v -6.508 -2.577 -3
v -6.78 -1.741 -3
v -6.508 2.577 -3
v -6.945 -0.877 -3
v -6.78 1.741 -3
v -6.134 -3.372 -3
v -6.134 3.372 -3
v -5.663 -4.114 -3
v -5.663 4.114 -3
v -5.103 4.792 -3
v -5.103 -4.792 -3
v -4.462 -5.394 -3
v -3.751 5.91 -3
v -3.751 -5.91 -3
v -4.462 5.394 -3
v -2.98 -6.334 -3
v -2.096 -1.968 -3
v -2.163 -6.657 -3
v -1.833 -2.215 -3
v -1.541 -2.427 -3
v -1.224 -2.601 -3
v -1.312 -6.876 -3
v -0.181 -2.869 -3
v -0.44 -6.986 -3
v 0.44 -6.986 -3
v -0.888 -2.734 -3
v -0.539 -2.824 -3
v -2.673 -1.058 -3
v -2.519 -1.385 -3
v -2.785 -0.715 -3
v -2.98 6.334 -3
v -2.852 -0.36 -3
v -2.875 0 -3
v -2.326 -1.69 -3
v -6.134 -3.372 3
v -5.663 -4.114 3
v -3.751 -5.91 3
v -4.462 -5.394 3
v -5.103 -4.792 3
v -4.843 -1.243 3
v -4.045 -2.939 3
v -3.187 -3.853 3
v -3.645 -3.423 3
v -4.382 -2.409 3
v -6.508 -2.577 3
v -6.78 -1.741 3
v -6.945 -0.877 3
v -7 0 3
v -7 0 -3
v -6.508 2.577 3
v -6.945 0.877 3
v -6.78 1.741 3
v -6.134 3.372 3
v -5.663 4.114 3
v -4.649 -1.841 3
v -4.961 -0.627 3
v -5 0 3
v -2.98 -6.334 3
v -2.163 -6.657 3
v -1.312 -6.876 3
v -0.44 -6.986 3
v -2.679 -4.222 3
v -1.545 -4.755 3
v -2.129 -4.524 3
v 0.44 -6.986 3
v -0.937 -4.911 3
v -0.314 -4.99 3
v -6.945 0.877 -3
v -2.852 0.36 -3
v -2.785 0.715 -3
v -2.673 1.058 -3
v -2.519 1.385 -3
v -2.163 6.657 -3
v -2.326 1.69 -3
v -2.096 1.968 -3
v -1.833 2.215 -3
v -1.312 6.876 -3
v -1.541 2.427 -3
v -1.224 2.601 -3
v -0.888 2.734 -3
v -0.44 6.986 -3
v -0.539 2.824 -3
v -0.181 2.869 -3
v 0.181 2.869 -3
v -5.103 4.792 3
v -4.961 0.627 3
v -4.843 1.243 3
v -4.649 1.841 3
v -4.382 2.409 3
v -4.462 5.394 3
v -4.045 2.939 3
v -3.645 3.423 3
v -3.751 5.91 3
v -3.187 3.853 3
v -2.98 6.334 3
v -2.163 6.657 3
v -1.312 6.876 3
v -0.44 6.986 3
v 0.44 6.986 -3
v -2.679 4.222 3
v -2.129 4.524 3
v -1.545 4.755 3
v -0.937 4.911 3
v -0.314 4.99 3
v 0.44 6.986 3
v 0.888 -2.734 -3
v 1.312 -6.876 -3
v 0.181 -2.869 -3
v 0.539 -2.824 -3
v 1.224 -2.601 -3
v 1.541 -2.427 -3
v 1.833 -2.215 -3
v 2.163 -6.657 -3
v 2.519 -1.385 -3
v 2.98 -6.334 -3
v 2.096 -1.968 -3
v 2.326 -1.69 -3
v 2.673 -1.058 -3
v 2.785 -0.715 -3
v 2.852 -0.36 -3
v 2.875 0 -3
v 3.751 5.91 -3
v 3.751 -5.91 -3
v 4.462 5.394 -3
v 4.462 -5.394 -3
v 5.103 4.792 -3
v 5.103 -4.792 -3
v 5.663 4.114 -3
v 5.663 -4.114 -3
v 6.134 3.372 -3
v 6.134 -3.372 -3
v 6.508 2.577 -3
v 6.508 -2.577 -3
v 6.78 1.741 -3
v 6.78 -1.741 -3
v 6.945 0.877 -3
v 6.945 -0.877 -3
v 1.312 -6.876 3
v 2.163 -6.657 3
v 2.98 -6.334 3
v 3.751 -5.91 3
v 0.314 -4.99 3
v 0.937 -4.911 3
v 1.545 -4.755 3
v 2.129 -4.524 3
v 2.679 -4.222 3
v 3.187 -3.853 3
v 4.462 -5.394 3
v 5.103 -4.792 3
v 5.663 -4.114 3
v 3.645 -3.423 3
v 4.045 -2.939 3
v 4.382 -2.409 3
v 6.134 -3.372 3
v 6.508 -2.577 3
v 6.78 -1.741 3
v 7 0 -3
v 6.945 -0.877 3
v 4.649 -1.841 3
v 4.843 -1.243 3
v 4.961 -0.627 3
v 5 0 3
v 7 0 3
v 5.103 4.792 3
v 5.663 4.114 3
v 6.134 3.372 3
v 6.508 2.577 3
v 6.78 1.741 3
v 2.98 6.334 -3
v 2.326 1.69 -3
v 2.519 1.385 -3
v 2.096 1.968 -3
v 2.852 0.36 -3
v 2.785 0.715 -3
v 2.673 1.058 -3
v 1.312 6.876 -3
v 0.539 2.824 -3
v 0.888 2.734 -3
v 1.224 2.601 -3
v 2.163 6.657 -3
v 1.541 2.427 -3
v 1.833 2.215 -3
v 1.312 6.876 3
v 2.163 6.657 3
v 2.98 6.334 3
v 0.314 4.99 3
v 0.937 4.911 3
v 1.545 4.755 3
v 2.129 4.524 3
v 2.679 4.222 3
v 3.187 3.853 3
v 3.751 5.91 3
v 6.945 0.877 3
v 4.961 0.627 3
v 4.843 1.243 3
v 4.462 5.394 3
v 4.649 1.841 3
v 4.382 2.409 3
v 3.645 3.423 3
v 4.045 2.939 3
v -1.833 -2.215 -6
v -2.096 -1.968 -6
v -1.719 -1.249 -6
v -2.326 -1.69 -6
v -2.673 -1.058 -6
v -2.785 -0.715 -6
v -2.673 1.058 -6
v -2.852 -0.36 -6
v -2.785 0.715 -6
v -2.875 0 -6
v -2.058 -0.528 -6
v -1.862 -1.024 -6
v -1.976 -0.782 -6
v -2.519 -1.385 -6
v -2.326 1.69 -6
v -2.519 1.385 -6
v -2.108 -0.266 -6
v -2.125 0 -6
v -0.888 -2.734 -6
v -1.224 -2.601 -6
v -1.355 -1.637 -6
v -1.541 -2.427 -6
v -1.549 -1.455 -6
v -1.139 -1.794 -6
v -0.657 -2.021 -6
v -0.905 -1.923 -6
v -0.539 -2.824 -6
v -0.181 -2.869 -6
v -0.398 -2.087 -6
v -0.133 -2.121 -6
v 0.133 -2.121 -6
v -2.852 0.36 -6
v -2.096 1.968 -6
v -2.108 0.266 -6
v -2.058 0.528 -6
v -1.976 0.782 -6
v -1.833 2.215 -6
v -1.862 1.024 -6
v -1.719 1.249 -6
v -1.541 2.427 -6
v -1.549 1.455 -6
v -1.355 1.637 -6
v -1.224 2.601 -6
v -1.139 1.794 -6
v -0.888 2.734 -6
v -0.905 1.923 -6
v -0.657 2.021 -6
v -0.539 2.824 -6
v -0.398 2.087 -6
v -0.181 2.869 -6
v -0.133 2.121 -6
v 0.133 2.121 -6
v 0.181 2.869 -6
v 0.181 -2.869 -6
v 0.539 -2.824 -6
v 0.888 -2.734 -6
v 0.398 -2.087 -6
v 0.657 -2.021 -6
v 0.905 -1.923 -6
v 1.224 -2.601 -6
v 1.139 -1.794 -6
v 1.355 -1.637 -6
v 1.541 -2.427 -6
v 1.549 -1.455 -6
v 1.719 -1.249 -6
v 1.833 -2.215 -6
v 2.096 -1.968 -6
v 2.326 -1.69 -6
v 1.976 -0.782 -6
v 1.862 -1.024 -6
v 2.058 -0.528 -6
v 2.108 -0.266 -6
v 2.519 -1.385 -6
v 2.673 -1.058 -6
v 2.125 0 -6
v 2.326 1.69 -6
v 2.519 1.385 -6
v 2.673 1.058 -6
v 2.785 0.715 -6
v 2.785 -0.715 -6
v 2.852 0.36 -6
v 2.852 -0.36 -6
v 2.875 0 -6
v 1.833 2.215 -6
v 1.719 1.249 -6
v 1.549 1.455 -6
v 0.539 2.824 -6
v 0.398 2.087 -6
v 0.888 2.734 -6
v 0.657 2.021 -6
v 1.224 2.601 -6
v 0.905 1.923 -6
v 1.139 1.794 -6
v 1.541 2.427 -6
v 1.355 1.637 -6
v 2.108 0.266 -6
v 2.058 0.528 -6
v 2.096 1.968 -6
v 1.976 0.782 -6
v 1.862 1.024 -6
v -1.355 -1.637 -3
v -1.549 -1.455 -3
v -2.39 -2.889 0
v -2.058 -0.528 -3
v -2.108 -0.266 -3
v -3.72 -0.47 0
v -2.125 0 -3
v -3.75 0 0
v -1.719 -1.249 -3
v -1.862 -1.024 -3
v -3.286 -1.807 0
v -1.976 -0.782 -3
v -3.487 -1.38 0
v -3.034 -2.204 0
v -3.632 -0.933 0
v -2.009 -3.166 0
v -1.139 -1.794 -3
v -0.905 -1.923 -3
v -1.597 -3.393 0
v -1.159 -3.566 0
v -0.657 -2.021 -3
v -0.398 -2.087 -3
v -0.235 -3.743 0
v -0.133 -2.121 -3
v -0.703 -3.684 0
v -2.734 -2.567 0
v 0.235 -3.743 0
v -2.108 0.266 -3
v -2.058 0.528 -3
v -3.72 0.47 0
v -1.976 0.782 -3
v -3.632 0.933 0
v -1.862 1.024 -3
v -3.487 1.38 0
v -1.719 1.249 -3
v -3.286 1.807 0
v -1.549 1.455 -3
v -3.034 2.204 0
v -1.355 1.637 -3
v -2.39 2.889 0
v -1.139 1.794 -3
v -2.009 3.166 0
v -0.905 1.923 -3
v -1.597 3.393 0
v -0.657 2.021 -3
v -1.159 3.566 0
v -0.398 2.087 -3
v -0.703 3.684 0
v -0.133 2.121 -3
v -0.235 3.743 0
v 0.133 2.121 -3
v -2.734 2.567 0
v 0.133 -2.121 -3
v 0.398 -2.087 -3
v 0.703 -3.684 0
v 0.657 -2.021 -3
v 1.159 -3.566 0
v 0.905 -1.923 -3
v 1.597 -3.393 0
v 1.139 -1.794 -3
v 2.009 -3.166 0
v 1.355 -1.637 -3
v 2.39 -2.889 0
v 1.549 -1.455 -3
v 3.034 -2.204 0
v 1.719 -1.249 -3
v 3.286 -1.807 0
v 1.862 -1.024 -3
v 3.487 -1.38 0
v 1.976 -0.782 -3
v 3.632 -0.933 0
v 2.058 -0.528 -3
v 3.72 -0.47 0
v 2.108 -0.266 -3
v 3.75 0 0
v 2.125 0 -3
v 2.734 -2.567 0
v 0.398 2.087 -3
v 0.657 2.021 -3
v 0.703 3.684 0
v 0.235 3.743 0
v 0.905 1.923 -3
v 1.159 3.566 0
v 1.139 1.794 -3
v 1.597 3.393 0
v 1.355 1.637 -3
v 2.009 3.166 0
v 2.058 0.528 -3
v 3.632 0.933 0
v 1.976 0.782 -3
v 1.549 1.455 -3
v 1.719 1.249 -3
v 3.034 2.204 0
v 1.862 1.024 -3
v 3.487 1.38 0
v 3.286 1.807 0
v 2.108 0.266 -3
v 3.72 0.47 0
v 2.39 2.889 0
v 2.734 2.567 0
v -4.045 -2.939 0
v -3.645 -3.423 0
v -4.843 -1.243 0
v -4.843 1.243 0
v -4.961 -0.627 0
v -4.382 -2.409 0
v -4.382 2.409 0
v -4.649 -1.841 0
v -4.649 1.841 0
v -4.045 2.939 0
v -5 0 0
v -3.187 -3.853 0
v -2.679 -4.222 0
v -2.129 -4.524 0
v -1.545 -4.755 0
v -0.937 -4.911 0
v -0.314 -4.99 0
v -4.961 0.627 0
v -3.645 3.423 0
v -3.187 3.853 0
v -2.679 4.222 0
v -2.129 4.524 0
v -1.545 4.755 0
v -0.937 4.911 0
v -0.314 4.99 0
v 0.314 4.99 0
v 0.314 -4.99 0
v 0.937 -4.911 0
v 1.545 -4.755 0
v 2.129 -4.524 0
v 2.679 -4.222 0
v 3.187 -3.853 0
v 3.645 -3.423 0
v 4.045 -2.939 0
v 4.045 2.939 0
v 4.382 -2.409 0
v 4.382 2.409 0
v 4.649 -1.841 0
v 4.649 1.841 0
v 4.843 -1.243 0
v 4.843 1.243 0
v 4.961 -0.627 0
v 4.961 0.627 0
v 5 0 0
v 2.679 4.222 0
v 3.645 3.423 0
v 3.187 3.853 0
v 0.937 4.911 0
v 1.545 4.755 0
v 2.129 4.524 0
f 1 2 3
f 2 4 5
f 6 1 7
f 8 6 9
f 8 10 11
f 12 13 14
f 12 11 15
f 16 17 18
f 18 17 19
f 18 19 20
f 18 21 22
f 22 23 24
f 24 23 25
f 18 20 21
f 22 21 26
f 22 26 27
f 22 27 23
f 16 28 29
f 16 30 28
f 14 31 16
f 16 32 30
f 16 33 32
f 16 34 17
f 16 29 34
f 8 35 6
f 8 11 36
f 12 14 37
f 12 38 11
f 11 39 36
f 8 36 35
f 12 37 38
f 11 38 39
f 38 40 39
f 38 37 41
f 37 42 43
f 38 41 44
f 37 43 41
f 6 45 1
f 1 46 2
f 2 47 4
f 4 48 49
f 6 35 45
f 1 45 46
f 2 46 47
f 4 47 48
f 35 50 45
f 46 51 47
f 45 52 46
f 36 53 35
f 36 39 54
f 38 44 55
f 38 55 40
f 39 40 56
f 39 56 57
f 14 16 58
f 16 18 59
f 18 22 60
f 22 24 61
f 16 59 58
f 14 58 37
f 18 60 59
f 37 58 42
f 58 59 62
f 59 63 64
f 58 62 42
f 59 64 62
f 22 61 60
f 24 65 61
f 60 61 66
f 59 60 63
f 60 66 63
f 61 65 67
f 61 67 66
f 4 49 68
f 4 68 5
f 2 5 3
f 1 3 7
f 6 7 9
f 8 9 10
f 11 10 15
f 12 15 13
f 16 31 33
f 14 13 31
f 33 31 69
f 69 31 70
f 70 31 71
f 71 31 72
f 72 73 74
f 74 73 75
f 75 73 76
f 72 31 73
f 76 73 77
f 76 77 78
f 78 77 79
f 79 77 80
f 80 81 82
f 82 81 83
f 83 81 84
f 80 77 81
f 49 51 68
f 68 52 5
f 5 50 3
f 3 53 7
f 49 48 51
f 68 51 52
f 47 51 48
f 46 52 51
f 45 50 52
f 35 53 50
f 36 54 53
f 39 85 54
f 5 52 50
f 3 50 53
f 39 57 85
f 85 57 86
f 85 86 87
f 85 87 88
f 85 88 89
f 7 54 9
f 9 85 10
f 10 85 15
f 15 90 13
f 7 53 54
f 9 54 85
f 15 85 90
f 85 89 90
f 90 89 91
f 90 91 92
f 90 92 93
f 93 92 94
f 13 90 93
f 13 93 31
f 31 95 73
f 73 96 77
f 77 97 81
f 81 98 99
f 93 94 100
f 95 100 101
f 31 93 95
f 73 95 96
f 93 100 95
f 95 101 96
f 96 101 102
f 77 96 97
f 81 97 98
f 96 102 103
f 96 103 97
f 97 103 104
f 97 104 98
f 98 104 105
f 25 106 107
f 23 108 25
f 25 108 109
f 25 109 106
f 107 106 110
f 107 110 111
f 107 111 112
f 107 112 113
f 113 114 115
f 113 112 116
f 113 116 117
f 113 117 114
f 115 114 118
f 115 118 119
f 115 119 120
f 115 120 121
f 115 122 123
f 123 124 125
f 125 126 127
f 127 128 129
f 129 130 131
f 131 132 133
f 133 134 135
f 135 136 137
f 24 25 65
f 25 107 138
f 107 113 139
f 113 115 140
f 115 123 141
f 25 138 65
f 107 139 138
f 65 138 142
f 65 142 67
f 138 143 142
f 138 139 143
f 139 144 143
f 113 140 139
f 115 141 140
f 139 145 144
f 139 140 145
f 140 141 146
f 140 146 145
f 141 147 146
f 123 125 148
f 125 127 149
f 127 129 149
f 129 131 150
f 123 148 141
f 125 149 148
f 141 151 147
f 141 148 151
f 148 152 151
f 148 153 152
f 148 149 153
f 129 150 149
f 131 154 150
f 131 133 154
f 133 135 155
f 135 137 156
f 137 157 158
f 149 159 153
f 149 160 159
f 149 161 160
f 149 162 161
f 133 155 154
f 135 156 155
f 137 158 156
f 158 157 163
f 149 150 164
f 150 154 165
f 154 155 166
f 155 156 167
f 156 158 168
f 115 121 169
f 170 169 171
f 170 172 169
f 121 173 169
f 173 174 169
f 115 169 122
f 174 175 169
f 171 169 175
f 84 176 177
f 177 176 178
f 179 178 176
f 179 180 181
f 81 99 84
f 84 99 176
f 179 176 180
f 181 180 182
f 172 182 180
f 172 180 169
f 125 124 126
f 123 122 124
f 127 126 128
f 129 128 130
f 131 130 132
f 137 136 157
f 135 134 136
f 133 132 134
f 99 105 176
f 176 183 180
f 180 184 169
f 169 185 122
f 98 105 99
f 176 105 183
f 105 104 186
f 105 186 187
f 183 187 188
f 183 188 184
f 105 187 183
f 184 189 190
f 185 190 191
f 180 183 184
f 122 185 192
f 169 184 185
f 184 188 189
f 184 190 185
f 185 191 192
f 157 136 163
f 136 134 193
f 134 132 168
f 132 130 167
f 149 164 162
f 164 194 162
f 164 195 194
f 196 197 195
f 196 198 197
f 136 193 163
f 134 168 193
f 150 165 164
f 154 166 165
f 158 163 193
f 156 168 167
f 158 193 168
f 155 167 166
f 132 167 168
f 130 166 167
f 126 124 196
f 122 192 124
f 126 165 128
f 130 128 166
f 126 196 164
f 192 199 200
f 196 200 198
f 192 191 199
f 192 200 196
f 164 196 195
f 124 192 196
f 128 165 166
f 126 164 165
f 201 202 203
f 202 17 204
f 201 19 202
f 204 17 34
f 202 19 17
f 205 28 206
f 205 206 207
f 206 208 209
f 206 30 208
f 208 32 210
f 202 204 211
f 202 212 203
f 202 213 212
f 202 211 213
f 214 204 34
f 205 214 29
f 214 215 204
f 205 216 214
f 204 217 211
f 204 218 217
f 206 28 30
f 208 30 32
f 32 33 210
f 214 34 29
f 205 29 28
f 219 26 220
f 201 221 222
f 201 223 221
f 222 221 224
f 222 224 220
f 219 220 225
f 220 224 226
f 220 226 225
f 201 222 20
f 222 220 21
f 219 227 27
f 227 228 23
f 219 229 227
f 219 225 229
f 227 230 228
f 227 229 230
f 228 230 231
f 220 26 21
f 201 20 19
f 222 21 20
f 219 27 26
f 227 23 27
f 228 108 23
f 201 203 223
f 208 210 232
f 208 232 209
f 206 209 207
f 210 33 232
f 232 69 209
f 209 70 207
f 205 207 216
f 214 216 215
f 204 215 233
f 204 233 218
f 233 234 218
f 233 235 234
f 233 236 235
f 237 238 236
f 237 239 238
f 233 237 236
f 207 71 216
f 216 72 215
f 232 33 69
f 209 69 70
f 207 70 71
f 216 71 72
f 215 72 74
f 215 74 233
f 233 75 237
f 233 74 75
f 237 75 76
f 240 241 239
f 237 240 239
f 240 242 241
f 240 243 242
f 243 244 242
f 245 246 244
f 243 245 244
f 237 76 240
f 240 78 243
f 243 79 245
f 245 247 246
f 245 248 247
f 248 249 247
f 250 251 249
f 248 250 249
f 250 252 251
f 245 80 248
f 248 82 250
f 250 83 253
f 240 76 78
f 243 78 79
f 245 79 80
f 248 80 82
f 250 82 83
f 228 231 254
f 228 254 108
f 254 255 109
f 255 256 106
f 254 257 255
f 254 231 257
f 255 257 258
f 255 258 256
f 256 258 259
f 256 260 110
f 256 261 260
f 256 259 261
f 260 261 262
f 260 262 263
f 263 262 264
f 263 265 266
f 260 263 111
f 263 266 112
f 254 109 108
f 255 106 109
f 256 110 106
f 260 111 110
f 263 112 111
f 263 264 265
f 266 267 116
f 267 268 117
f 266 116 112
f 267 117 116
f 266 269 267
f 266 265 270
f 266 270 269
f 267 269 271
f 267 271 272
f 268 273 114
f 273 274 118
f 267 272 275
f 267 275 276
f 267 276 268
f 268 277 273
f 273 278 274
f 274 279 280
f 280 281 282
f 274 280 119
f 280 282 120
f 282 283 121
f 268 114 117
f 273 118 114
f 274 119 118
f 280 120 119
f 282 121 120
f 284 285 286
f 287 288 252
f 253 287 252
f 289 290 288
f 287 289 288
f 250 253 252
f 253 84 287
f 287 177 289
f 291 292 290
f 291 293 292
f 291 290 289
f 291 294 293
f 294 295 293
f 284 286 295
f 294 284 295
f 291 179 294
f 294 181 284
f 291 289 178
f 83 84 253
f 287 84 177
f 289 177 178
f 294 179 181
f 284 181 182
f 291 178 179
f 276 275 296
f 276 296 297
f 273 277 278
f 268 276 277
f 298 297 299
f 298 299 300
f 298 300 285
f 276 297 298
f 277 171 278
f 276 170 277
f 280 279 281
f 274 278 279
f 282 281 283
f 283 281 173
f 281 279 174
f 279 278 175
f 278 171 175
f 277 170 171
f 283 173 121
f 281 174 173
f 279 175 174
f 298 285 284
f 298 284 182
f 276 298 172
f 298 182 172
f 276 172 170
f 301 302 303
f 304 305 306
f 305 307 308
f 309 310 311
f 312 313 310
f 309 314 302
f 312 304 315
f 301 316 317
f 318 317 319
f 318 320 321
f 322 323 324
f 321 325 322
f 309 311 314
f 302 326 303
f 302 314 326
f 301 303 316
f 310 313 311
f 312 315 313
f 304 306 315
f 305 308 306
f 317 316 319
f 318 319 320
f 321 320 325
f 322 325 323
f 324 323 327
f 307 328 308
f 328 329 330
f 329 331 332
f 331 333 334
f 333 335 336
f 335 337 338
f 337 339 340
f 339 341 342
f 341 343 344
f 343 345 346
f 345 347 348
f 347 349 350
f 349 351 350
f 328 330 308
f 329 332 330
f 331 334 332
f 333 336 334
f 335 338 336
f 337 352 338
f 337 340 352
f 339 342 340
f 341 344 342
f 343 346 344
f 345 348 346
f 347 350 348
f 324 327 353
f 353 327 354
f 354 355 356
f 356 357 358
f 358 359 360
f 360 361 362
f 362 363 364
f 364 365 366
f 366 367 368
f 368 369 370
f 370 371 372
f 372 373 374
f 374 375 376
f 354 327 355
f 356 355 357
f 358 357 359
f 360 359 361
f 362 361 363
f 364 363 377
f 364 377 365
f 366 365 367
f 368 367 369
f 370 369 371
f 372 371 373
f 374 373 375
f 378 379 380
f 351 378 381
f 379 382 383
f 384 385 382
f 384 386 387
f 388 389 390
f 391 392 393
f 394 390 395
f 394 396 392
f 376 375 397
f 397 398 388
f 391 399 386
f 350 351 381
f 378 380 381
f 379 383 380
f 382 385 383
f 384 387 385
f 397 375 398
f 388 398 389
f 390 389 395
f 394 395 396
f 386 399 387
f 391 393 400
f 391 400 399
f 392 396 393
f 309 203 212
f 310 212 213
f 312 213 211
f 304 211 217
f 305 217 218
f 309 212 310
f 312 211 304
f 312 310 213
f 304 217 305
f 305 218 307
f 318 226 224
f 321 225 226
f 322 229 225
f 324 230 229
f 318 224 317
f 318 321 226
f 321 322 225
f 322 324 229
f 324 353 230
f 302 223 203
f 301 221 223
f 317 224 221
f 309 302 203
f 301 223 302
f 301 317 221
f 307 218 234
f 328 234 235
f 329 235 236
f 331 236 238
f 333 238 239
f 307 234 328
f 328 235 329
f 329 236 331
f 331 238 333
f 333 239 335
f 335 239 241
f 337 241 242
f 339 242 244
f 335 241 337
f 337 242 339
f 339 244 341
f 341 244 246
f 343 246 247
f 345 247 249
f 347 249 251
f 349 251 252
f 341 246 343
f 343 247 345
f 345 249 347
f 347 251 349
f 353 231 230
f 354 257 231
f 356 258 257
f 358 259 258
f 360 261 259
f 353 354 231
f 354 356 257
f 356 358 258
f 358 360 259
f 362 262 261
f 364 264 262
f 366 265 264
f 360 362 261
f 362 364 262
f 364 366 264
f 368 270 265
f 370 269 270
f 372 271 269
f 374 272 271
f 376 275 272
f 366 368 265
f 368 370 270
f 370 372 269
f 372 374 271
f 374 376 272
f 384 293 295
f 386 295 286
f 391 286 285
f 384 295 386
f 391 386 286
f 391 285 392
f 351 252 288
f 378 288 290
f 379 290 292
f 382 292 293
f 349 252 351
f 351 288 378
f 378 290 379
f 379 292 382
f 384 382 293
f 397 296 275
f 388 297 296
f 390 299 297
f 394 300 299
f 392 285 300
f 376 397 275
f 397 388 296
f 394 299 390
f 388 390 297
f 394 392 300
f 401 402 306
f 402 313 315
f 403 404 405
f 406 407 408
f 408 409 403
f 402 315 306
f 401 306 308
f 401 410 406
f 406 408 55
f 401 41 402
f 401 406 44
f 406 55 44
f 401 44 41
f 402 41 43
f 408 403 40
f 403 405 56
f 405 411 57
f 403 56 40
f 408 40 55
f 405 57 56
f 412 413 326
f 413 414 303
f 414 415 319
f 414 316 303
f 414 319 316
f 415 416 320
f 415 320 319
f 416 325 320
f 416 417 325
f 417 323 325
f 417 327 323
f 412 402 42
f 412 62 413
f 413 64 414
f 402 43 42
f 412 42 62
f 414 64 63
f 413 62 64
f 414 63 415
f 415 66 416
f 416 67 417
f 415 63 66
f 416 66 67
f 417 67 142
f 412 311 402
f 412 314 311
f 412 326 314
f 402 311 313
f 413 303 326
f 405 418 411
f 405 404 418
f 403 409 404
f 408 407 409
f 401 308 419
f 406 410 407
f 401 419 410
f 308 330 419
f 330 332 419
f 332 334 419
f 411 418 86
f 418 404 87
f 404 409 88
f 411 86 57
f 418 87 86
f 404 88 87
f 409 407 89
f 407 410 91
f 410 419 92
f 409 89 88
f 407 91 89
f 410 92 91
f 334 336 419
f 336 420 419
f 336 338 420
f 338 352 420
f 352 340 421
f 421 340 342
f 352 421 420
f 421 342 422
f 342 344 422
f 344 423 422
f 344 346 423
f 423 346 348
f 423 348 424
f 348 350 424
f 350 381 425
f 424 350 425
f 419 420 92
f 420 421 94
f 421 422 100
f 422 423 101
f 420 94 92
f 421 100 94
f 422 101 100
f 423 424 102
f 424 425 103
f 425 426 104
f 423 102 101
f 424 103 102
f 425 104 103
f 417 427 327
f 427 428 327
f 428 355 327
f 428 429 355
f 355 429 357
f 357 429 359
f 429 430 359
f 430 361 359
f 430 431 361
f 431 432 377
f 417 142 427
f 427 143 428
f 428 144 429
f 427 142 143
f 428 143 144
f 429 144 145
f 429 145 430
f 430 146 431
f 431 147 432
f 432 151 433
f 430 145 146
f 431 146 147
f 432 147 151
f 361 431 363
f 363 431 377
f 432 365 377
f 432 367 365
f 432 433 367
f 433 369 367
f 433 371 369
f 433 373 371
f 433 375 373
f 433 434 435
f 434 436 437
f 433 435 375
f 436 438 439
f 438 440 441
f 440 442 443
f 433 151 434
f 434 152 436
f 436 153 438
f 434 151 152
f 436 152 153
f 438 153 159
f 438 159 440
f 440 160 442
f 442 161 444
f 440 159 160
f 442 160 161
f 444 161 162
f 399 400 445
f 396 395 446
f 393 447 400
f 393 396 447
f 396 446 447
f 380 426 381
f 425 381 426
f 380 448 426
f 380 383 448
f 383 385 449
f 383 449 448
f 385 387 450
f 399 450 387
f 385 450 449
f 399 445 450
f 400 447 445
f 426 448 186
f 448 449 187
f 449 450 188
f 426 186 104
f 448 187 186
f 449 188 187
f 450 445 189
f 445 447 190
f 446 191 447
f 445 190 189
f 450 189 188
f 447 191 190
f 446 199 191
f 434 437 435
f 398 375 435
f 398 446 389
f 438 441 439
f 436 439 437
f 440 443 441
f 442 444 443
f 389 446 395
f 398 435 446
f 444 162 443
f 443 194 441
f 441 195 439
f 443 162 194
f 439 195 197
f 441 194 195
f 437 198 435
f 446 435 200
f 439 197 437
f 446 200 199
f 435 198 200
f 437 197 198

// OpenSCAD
$fn = 50;

difference() {
	union() {
		translate(v = [0, 0, -3.0]) {
			cylinder(h = 6, r = 7.0);
		}
		#translate(v = [0, 0, -6.0]) {
			cylinder(h = 6, r = 2.875);
		}
	}
	union() {
		translate(v = [0, 0, 0]) {
			rotate(a = [0, 0, 0]) {
				difference() {
					union() {
						translate(v = [0, 0, -6.0]) {
							cylinder(h = 6, r = 2.0);
						}
						translate(v = [0, 0, -3]) {
							cylinder(h = 3, r1 = 2.125, r2 = 3.75);
						}
						translate(v = [0, 0, -6.0]) {
							cylinder(h = 6, r = 2.125);
						}
						translate(v = [0, 0, -6.0]) {
							cylinder(h = 6, r = 2.0);
						}
					}
					union();
				}
			}
		}
		#cylinder(h = 3, r = 5.0);
	}
}
